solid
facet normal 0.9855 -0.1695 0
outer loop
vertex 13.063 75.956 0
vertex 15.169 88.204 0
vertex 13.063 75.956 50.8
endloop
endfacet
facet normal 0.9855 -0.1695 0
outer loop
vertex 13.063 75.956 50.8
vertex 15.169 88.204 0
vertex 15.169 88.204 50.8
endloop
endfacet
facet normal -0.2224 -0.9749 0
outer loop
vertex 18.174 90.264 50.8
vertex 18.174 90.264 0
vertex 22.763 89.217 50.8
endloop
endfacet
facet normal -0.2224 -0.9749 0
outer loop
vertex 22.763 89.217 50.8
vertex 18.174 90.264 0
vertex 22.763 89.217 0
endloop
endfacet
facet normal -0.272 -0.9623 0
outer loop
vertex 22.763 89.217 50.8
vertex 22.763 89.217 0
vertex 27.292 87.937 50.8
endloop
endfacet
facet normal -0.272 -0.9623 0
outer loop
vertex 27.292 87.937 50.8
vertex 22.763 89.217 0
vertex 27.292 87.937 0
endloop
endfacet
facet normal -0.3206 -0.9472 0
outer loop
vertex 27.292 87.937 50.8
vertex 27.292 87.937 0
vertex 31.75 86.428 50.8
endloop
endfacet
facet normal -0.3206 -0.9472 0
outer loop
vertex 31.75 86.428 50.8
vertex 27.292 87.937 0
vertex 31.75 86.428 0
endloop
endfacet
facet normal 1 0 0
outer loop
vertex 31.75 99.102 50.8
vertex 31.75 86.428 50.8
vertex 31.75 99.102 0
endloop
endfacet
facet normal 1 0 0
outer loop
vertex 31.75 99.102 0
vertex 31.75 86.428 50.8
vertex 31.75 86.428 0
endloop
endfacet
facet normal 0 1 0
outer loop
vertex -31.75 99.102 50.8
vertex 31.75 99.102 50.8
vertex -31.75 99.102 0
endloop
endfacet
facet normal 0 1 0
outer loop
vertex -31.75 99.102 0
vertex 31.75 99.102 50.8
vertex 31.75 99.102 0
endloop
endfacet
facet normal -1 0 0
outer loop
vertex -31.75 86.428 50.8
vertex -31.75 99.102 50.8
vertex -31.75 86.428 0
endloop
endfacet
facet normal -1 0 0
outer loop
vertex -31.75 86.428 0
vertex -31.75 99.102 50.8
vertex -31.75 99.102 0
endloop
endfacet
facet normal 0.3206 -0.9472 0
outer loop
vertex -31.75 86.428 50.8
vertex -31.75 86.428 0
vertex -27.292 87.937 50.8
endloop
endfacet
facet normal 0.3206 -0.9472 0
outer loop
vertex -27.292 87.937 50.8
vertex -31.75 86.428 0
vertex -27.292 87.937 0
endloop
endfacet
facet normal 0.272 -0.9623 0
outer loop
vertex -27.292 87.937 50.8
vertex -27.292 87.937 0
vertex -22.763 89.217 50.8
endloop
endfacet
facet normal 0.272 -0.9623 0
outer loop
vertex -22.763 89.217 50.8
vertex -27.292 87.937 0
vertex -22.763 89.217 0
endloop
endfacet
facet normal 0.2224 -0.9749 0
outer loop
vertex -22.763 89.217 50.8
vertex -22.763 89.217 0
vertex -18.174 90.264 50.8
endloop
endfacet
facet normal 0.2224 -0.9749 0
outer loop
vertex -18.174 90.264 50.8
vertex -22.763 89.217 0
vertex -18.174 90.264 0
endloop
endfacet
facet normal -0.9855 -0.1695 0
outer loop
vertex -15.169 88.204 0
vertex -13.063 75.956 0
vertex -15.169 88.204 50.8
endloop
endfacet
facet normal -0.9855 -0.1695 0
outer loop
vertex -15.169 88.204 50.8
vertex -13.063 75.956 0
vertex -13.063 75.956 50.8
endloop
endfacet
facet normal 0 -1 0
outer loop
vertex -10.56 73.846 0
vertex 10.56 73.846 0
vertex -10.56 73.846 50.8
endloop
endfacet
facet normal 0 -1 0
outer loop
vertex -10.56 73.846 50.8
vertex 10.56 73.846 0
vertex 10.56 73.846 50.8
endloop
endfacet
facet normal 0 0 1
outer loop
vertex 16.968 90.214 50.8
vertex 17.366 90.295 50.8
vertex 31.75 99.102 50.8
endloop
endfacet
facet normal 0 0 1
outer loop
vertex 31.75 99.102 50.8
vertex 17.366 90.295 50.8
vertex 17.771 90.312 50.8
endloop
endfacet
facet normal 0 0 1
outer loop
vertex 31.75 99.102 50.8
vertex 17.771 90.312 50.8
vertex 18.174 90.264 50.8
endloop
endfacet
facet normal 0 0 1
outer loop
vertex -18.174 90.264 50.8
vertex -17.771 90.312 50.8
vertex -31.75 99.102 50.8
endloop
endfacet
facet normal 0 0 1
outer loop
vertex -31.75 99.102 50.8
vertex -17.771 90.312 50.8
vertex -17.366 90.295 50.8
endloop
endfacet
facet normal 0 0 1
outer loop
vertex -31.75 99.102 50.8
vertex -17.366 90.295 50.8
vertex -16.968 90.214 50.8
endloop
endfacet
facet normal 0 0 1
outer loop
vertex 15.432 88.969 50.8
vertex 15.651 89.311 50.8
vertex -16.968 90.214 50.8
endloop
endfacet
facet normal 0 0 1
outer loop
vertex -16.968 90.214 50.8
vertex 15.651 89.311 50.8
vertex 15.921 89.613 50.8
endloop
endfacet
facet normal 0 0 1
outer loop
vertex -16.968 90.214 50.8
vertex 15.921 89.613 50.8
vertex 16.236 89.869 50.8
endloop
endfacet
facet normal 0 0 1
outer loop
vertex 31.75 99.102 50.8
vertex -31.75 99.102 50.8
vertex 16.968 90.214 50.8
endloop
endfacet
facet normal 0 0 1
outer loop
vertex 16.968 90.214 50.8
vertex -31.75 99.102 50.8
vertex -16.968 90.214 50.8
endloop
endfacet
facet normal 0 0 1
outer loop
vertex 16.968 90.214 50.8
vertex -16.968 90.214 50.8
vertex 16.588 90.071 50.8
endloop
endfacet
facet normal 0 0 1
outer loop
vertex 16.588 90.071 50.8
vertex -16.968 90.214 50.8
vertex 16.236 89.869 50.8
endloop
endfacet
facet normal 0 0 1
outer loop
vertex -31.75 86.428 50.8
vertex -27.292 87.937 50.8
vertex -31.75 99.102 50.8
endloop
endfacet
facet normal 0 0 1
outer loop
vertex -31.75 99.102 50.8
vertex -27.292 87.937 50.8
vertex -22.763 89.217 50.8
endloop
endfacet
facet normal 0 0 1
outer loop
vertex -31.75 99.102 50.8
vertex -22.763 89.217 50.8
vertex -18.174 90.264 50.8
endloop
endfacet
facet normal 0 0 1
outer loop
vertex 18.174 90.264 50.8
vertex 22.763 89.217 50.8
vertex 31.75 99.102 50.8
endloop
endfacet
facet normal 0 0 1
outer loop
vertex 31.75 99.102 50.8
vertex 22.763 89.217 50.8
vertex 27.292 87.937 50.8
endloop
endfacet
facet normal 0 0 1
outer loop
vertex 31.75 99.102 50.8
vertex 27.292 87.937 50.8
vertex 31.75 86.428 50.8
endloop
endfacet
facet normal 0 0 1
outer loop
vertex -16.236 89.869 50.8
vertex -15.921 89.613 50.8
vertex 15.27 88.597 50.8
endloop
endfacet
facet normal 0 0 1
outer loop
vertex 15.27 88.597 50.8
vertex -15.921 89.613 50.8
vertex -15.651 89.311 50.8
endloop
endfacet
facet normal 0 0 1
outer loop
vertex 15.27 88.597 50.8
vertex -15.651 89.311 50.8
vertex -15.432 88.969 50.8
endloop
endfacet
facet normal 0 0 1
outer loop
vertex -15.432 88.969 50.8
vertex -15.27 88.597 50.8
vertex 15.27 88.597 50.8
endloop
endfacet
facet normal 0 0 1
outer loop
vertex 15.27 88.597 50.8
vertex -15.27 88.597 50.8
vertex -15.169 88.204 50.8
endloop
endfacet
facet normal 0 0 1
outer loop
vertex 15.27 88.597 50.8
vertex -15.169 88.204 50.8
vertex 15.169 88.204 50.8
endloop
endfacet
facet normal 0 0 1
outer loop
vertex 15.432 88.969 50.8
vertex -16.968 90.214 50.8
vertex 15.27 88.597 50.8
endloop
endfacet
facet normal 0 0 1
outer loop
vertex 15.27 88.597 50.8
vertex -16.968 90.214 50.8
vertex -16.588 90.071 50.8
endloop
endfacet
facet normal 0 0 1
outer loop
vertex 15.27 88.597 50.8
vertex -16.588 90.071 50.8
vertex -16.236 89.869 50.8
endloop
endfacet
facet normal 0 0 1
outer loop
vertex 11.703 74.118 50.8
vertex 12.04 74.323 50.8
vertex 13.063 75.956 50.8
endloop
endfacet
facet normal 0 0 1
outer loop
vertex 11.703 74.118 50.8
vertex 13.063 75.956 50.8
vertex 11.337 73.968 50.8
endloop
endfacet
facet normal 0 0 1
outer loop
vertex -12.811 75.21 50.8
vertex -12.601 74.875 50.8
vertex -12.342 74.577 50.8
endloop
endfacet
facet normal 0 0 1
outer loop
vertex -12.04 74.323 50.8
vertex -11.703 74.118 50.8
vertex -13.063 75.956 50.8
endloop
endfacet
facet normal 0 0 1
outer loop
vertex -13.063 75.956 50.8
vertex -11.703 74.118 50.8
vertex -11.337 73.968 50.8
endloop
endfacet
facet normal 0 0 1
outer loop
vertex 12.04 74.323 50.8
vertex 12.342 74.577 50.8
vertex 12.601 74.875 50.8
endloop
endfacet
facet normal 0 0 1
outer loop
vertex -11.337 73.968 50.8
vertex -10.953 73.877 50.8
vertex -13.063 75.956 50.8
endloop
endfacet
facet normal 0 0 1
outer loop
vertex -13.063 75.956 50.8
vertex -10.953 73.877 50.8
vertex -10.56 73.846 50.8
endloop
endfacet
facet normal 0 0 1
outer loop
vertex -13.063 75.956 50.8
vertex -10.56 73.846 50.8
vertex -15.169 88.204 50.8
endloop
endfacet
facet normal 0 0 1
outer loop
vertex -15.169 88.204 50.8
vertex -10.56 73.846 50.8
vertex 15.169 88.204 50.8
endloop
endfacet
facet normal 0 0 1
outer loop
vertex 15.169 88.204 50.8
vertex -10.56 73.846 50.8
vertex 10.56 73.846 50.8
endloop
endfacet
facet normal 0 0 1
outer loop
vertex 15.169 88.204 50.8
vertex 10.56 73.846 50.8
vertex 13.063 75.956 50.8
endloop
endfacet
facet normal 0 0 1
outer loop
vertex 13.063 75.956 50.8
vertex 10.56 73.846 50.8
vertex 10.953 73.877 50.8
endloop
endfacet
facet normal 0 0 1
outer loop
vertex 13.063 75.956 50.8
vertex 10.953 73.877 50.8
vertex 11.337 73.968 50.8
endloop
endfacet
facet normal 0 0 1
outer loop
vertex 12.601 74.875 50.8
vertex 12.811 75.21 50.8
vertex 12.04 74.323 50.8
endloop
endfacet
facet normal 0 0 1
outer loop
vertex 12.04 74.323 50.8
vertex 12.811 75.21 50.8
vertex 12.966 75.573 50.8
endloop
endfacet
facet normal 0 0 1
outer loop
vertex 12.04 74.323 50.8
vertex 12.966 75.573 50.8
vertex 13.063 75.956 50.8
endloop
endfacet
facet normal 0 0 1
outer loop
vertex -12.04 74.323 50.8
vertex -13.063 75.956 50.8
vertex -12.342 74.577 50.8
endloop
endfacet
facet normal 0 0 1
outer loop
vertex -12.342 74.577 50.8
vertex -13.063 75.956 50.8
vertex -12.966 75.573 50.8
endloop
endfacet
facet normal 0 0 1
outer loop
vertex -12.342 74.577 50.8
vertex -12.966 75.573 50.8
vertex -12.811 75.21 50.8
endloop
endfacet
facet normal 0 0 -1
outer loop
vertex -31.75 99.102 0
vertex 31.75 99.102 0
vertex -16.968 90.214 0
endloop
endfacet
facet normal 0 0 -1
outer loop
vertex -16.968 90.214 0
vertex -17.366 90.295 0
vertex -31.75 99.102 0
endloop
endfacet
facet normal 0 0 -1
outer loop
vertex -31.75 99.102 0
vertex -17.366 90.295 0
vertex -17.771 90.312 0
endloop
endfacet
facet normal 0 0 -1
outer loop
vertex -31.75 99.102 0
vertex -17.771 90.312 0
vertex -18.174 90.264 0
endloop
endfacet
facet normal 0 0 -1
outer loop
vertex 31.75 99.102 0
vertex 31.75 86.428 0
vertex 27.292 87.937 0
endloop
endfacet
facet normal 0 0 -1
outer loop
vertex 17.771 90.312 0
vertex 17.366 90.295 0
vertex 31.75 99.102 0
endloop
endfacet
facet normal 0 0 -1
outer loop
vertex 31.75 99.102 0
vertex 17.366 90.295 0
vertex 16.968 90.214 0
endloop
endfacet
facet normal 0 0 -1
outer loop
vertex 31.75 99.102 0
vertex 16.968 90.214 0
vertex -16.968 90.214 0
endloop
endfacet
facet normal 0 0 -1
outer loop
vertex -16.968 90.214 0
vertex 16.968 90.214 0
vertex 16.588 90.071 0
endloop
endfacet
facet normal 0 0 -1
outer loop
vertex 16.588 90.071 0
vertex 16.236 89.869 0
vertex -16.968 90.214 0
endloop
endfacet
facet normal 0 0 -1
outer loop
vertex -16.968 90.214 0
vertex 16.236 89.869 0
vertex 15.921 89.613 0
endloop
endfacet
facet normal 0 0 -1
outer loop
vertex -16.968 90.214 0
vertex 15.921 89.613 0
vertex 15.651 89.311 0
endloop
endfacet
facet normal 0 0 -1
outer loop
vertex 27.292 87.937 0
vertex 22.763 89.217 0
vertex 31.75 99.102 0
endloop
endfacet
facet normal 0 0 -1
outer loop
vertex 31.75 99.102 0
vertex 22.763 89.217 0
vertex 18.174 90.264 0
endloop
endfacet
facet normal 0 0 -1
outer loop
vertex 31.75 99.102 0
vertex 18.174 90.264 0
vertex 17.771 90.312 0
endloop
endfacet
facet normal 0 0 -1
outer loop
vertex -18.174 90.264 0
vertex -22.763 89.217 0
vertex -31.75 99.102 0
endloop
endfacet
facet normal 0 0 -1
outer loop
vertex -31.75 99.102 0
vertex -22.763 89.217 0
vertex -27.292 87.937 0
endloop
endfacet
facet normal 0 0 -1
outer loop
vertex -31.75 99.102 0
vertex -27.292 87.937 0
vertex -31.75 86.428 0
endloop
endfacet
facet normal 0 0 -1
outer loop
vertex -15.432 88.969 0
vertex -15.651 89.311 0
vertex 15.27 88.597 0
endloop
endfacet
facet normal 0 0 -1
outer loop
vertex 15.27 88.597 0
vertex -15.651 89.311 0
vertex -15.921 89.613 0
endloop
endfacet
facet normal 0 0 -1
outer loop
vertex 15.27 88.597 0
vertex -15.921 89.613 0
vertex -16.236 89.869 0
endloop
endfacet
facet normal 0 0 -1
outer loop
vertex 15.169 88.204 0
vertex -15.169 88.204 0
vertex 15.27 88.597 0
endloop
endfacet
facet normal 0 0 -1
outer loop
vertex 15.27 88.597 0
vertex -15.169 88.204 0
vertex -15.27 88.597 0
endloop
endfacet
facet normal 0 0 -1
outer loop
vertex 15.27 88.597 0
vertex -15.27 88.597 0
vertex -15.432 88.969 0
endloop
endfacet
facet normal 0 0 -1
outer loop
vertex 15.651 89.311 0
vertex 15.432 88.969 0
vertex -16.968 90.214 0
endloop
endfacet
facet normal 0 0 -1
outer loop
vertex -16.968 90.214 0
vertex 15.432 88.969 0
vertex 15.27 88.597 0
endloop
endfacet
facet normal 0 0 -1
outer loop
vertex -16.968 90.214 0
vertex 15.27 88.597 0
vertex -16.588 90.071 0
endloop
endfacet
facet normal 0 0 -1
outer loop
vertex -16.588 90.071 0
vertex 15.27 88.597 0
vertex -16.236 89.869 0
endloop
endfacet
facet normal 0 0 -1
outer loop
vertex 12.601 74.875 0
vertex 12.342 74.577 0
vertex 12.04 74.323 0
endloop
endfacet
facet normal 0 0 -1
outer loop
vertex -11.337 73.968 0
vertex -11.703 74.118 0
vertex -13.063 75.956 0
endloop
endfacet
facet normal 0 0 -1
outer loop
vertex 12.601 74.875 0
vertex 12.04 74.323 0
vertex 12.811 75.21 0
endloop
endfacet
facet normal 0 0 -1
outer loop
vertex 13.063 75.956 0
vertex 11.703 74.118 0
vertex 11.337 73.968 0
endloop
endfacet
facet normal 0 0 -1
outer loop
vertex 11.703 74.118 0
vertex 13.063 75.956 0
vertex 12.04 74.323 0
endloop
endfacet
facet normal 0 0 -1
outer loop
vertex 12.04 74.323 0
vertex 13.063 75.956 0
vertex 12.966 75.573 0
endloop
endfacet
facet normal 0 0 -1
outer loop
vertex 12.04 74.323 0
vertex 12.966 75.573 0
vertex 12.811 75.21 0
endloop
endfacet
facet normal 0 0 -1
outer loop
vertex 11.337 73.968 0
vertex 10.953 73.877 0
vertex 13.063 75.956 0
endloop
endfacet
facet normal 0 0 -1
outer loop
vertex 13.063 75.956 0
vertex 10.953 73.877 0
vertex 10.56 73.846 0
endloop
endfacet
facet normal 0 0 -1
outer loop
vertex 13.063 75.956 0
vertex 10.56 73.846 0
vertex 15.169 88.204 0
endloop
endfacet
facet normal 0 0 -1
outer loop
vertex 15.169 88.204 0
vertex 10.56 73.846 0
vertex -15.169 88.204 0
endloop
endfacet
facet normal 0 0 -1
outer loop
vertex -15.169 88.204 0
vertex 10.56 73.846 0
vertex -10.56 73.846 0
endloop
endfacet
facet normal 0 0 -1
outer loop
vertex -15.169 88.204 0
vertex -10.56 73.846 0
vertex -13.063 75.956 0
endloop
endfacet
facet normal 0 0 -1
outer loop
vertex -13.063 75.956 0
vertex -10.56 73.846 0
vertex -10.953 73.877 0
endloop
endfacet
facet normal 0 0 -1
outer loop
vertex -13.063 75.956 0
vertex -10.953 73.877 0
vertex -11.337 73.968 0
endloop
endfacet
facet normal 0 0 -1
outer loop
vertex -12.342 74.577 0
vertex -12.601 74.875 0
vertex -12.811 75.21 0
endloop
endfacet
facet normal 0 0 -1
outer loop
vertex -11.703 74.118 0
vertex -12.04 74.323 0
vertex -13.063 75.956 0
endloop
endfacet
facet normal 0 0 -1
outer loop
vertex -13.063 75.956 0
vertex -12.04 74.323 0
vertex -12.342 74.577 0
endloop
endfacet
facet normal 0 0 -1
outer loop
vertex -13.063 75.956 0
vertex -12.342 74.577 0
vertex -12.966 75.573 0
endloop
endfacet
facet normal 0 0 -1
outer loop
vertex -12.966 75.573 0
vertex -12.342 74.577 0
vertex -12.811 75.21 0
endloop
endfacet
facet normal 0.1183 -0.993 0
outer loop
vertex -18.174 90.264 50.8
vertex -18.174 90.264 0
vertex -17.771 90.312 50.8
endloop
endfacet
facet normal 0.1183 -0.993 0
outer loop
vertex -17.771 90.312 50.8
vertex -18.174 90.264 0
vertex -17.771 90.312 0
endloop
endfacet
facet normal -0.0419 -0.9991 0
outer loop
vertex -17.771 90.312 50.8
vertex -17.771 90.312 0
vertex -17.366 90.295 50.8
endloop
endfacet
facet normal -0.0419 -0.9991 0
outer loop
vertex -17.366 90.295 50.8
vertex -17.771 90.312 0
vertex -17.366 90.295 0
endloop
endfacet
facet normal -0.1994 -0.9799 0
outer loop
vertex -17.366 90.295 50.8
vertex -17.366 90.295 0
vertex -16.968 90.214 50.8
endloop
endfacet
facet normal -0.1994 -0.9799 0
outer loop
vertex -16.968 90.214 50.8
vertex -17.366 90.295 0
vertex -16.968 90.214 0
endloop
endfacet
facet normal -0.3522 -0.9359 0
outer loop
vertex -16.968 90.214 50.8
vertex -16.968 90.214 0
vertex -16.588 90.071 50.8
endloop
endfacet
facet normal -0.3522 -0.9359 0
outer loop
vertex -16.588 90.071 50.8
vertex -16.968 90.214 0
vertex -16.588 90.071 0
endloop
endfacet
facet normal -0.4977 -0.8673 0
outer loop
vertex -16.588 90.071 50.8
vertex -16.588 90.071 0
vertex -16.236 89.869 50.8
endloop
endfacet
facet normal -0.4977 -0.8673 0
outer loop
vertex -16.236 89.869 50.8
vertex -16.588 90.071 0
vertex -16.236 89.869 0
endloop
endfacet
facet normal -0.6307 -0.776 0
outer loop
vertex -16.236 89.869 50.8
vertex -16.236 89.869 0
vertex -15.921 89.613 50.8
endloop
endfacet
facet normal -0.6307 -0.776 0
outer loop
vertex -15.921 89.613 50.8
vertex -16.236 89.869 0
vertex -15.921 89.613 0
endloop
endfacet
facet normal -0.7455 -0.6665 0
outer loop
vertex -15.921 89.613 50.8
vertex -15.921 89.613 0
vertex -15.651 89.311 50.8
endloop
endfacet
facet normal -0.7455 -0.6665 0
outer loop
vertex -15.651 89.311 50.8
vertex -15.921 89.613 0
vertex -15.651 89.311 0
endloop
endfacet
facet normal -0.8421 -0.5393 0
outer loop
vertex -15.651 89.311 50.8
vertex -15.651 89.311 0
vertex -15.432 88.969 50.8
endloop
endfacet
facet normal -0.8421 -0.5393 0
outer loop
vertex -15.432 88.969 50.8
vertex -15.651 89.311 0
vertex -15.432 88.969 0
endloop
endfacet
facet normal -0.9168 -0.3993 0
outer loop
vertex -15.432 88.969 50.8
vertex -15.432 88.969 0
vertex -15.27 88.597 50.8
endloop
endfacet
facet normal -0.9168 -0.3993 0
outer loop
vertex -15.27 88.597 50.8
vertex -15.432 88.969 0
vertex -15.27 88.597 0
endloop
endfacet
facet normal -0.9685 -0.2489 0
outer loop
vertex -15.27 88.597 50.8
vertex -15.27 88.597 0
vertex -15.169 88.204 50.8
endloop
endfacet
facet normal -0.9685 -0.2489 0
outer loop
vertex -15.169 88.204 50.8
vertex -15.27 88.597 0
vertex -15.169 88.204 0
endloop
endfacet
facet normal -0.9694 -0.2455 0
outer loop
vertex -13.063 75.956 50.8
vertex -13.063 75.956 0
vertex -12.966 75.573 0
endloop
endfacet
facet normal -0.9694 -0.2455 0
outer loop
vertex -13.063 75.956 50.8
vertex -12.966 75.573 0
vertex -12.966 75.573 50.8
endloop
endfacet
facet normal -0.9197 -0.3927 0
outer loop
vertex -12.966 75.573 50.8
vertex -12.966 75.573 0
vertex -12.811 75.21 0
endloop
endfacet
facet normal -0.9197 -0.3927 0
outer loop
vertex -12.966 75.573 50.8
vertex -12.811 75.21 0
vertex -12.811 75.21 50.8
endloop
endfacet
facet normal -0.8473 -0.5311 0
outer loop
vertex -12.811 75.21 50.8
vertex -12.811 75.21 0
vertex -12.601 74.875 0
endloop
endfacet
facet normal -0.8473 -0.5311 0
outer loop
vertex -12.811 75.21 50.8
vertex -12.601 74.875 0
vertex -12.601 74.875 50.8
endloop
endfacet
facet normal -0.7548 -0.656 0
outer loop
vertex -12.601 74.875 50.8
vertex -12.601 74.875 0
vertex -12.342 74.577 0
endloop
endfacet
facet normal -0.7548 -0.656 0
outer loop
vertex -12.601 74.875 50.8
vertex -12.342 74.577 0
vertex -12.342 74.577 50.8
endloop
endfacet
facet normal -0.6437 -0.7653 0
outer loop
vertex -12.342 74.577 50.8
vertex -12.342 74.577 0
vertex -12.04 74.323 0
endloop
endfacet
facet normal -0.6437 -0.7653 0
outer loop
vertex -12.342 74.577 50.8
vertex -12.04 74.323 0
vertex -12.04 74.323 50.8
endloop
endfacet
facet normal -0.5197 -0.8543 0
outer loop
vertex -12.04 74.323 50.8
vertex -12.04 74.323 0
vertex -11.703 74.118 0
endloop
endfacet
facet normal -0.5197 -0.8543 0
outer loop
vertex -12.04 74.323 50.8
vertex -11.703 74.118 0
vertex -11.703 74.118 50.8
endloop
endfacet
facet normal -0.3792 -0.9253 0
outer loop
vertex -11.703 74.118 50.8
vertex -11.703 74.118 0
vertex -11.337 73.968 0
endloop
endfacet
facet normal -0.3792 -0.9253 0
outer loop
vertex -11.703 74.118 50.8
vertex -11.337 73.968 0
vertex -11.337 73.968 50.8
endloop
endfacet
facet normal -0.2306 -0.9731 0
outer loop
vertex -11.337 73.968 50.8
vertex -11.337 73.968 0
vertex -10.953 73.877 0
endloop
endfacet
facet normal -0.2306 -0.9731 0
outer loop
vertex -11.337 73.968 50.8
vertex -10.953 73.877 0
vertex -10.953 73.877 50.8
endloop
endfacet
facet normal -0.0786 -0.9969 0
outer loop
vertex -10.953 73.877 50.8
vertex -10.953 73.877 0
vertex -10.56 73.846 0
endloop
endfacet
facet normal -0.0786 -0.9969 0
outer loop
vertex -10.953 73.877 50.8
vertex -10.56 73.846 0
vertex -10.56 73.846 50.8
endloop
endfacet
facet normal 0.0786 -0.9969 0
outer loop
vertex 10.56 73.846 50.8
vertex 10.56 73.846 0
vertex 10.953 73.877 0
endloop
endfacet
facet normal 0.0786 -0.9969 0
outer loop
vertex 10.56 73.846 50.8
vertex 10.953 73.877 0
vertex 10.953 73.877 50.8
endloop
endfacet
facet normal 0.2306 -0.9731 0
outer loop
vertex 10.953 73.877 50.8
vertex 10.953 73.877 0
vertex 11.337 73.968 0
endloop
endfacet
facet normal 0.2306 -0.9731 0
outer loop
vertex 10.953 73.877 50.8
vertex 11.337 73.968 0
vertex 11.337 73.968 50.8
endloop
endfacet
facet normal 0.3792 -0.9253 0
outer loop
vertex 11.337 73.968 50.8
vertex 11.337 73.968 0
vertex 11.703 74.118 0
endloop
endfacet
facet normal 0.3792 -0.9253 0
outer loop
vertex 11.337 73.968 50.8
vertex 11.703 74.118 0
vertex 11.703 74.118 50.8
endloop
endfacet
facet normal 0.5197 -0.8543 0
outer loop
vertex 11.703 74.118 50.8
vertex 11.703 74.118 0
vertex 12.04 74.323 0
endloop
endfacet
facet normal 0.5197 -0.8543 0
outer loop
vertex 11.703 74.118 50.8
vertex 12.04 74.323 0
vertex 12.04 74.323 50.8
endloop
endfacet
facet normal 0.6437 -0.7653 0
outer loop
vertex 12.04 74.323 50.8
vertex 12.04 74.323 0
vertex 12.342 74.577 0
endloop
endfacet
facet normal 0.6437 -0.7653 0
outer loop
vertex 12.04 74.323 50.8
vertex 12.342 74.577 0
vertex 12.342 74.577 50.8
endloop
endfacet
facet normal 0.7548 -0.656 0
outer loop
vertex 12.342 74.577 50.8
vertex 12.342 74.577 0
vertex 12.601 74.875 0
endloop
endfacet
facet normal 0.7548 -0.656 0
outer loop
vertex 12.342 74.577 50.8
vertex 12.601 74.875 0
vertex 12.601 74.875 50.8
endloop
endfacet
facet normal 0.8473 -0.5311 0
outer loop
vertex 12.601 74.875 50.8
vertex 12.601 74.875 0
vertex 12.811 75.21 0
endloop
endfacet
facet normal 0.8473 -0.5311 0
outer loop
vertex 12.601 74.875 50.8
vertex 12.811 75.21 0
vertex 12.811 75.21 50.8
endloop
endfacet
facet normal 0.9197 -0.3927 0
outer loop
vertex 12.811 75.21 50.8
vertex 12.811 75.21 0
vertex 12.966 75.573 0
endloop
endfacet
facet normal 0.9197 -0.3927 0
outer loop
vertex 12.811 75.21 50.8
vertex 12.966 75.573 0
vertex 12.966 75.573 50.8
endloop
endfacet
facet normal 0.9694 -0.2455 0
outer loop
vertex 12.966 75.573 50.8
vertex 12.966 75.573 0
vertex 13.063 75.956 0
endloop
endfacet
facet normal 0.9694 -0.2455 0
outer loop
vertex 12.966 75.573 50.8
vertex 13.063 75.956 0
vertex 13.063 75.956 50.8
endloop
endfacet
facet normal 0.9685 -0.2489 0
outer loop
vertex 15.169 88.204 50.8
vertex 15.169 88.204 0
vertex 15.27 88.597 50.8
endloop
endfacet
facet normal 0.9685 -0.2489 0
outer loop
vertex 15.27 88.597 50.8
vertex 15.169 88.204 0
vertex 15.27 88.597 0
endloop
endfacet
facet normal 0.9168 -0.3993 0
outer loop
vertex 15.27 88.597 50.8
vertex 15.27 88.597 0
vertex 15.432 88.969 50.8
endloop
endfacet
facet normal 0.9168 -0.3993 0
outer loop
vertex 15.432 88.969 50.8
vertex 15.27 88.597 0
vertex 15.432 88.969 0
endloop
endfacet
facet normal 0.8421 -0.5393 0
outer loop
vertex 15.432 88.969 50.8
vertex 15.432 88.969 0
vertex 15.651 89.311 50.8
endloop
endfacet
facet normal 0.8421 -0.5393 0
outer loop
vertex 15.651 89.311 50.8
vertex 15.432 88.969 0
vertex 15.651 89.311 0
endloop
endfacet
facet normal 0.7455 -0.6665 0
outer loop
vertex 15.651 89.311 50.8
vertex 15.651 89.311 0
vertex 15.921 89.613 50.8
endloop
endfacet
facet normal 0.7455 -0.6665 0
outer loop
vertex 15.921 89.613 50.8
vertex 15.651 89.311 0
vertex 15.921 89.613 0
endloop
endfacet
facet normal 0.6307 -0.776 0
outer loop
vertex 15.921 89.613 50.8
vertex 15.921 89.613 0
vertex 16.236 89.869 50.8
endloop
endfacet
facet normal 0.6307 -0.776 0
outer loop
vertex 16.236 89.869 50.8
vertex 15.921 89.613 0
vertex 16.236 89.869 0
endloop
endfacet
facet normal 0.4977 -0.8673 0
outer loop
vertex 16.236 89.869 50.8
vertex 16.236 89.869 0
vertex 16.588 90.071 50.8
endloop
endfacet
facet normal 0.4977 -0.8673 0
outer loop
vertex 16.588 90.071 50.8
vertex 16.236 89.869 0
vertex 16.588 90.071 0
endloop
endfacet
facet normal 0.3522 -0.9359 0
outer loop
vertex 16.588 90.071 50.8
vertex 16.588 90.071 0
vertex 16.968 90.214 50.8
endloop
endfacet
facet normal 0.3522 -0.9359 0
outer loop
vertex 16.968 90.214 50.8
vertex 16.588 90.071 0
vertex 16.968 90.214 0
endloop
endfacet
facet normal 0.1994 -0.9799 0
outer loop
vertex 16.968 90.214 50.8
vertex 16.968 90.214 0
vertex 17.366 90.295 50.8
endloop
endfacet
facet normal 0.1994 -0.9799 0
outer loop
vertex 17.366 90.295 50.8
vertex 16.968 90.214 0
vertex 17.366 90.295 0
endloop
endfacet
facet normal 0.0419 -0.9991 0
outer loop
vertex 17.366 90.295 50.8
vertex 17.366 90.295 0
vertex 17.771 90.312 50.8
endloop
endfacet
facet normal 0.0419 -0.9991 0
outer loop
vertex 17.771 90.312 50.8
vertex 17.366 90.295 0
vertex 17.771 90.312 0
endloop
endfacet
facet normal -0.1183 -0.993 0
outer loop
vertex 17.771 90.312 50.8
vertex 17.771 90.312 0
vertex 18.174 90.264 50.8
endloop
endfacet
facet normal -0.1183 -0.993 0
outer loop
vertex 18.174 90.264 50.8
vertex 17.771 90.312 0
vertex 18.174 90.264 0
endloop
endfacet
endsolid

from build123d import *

# Parameters (mm, degrees)
BOSS_EXTRUDE1_DEPTH = 50.8
FILLET1_R           = 2.54


with BuildPart() as part:
    # Sketch1 → Boss-Extrude1 (new body)
    with BuildSketch(Plane.XY):
        with BuildLine():
            Line((-12.7, 73.846320157), (12.7, 73.846320157))
            Line((12.7, 73.846320157), (15.605843118, 90.742841512))
            ThreePointArc((15.605843118, 90.742841512), (23.776020133, 88.952270863), (31.75, 86.427675689))
            Line((31.75, 86.427675689), (31.75, 99.102275689))
            Line((31.75, 99.102275689), (-31.75, 99.102275689))
            Line((-31.75, 99.102275689), (-31.75, 86.427675689))
            ThreePointArc((-31.75, 86.427675689), (-23.776020133, 88.952270863), (-15.605843118, 90.742841512))
            Line((-15.605843118, 90.742841512), (-12.7, 73.846320157))
        make_face()
    extrude(amount=BOSS_EXTRUDE1_DEPTH)

    # Fillet1
    fillet1_edges = [part.edges().sort_by_distance(p)[0] for p in [
        (12.7, 73.846320157, 25.4),
        (-12.7, 73.846320157, 25.4),
        (-15.605843118, 90.742841512, 25.4),
        (15.605843118, 90.742841512, 25.4),
    ]]
    fillet(fillet1_edges, radius=FILLET1_R)


solid = part.part
